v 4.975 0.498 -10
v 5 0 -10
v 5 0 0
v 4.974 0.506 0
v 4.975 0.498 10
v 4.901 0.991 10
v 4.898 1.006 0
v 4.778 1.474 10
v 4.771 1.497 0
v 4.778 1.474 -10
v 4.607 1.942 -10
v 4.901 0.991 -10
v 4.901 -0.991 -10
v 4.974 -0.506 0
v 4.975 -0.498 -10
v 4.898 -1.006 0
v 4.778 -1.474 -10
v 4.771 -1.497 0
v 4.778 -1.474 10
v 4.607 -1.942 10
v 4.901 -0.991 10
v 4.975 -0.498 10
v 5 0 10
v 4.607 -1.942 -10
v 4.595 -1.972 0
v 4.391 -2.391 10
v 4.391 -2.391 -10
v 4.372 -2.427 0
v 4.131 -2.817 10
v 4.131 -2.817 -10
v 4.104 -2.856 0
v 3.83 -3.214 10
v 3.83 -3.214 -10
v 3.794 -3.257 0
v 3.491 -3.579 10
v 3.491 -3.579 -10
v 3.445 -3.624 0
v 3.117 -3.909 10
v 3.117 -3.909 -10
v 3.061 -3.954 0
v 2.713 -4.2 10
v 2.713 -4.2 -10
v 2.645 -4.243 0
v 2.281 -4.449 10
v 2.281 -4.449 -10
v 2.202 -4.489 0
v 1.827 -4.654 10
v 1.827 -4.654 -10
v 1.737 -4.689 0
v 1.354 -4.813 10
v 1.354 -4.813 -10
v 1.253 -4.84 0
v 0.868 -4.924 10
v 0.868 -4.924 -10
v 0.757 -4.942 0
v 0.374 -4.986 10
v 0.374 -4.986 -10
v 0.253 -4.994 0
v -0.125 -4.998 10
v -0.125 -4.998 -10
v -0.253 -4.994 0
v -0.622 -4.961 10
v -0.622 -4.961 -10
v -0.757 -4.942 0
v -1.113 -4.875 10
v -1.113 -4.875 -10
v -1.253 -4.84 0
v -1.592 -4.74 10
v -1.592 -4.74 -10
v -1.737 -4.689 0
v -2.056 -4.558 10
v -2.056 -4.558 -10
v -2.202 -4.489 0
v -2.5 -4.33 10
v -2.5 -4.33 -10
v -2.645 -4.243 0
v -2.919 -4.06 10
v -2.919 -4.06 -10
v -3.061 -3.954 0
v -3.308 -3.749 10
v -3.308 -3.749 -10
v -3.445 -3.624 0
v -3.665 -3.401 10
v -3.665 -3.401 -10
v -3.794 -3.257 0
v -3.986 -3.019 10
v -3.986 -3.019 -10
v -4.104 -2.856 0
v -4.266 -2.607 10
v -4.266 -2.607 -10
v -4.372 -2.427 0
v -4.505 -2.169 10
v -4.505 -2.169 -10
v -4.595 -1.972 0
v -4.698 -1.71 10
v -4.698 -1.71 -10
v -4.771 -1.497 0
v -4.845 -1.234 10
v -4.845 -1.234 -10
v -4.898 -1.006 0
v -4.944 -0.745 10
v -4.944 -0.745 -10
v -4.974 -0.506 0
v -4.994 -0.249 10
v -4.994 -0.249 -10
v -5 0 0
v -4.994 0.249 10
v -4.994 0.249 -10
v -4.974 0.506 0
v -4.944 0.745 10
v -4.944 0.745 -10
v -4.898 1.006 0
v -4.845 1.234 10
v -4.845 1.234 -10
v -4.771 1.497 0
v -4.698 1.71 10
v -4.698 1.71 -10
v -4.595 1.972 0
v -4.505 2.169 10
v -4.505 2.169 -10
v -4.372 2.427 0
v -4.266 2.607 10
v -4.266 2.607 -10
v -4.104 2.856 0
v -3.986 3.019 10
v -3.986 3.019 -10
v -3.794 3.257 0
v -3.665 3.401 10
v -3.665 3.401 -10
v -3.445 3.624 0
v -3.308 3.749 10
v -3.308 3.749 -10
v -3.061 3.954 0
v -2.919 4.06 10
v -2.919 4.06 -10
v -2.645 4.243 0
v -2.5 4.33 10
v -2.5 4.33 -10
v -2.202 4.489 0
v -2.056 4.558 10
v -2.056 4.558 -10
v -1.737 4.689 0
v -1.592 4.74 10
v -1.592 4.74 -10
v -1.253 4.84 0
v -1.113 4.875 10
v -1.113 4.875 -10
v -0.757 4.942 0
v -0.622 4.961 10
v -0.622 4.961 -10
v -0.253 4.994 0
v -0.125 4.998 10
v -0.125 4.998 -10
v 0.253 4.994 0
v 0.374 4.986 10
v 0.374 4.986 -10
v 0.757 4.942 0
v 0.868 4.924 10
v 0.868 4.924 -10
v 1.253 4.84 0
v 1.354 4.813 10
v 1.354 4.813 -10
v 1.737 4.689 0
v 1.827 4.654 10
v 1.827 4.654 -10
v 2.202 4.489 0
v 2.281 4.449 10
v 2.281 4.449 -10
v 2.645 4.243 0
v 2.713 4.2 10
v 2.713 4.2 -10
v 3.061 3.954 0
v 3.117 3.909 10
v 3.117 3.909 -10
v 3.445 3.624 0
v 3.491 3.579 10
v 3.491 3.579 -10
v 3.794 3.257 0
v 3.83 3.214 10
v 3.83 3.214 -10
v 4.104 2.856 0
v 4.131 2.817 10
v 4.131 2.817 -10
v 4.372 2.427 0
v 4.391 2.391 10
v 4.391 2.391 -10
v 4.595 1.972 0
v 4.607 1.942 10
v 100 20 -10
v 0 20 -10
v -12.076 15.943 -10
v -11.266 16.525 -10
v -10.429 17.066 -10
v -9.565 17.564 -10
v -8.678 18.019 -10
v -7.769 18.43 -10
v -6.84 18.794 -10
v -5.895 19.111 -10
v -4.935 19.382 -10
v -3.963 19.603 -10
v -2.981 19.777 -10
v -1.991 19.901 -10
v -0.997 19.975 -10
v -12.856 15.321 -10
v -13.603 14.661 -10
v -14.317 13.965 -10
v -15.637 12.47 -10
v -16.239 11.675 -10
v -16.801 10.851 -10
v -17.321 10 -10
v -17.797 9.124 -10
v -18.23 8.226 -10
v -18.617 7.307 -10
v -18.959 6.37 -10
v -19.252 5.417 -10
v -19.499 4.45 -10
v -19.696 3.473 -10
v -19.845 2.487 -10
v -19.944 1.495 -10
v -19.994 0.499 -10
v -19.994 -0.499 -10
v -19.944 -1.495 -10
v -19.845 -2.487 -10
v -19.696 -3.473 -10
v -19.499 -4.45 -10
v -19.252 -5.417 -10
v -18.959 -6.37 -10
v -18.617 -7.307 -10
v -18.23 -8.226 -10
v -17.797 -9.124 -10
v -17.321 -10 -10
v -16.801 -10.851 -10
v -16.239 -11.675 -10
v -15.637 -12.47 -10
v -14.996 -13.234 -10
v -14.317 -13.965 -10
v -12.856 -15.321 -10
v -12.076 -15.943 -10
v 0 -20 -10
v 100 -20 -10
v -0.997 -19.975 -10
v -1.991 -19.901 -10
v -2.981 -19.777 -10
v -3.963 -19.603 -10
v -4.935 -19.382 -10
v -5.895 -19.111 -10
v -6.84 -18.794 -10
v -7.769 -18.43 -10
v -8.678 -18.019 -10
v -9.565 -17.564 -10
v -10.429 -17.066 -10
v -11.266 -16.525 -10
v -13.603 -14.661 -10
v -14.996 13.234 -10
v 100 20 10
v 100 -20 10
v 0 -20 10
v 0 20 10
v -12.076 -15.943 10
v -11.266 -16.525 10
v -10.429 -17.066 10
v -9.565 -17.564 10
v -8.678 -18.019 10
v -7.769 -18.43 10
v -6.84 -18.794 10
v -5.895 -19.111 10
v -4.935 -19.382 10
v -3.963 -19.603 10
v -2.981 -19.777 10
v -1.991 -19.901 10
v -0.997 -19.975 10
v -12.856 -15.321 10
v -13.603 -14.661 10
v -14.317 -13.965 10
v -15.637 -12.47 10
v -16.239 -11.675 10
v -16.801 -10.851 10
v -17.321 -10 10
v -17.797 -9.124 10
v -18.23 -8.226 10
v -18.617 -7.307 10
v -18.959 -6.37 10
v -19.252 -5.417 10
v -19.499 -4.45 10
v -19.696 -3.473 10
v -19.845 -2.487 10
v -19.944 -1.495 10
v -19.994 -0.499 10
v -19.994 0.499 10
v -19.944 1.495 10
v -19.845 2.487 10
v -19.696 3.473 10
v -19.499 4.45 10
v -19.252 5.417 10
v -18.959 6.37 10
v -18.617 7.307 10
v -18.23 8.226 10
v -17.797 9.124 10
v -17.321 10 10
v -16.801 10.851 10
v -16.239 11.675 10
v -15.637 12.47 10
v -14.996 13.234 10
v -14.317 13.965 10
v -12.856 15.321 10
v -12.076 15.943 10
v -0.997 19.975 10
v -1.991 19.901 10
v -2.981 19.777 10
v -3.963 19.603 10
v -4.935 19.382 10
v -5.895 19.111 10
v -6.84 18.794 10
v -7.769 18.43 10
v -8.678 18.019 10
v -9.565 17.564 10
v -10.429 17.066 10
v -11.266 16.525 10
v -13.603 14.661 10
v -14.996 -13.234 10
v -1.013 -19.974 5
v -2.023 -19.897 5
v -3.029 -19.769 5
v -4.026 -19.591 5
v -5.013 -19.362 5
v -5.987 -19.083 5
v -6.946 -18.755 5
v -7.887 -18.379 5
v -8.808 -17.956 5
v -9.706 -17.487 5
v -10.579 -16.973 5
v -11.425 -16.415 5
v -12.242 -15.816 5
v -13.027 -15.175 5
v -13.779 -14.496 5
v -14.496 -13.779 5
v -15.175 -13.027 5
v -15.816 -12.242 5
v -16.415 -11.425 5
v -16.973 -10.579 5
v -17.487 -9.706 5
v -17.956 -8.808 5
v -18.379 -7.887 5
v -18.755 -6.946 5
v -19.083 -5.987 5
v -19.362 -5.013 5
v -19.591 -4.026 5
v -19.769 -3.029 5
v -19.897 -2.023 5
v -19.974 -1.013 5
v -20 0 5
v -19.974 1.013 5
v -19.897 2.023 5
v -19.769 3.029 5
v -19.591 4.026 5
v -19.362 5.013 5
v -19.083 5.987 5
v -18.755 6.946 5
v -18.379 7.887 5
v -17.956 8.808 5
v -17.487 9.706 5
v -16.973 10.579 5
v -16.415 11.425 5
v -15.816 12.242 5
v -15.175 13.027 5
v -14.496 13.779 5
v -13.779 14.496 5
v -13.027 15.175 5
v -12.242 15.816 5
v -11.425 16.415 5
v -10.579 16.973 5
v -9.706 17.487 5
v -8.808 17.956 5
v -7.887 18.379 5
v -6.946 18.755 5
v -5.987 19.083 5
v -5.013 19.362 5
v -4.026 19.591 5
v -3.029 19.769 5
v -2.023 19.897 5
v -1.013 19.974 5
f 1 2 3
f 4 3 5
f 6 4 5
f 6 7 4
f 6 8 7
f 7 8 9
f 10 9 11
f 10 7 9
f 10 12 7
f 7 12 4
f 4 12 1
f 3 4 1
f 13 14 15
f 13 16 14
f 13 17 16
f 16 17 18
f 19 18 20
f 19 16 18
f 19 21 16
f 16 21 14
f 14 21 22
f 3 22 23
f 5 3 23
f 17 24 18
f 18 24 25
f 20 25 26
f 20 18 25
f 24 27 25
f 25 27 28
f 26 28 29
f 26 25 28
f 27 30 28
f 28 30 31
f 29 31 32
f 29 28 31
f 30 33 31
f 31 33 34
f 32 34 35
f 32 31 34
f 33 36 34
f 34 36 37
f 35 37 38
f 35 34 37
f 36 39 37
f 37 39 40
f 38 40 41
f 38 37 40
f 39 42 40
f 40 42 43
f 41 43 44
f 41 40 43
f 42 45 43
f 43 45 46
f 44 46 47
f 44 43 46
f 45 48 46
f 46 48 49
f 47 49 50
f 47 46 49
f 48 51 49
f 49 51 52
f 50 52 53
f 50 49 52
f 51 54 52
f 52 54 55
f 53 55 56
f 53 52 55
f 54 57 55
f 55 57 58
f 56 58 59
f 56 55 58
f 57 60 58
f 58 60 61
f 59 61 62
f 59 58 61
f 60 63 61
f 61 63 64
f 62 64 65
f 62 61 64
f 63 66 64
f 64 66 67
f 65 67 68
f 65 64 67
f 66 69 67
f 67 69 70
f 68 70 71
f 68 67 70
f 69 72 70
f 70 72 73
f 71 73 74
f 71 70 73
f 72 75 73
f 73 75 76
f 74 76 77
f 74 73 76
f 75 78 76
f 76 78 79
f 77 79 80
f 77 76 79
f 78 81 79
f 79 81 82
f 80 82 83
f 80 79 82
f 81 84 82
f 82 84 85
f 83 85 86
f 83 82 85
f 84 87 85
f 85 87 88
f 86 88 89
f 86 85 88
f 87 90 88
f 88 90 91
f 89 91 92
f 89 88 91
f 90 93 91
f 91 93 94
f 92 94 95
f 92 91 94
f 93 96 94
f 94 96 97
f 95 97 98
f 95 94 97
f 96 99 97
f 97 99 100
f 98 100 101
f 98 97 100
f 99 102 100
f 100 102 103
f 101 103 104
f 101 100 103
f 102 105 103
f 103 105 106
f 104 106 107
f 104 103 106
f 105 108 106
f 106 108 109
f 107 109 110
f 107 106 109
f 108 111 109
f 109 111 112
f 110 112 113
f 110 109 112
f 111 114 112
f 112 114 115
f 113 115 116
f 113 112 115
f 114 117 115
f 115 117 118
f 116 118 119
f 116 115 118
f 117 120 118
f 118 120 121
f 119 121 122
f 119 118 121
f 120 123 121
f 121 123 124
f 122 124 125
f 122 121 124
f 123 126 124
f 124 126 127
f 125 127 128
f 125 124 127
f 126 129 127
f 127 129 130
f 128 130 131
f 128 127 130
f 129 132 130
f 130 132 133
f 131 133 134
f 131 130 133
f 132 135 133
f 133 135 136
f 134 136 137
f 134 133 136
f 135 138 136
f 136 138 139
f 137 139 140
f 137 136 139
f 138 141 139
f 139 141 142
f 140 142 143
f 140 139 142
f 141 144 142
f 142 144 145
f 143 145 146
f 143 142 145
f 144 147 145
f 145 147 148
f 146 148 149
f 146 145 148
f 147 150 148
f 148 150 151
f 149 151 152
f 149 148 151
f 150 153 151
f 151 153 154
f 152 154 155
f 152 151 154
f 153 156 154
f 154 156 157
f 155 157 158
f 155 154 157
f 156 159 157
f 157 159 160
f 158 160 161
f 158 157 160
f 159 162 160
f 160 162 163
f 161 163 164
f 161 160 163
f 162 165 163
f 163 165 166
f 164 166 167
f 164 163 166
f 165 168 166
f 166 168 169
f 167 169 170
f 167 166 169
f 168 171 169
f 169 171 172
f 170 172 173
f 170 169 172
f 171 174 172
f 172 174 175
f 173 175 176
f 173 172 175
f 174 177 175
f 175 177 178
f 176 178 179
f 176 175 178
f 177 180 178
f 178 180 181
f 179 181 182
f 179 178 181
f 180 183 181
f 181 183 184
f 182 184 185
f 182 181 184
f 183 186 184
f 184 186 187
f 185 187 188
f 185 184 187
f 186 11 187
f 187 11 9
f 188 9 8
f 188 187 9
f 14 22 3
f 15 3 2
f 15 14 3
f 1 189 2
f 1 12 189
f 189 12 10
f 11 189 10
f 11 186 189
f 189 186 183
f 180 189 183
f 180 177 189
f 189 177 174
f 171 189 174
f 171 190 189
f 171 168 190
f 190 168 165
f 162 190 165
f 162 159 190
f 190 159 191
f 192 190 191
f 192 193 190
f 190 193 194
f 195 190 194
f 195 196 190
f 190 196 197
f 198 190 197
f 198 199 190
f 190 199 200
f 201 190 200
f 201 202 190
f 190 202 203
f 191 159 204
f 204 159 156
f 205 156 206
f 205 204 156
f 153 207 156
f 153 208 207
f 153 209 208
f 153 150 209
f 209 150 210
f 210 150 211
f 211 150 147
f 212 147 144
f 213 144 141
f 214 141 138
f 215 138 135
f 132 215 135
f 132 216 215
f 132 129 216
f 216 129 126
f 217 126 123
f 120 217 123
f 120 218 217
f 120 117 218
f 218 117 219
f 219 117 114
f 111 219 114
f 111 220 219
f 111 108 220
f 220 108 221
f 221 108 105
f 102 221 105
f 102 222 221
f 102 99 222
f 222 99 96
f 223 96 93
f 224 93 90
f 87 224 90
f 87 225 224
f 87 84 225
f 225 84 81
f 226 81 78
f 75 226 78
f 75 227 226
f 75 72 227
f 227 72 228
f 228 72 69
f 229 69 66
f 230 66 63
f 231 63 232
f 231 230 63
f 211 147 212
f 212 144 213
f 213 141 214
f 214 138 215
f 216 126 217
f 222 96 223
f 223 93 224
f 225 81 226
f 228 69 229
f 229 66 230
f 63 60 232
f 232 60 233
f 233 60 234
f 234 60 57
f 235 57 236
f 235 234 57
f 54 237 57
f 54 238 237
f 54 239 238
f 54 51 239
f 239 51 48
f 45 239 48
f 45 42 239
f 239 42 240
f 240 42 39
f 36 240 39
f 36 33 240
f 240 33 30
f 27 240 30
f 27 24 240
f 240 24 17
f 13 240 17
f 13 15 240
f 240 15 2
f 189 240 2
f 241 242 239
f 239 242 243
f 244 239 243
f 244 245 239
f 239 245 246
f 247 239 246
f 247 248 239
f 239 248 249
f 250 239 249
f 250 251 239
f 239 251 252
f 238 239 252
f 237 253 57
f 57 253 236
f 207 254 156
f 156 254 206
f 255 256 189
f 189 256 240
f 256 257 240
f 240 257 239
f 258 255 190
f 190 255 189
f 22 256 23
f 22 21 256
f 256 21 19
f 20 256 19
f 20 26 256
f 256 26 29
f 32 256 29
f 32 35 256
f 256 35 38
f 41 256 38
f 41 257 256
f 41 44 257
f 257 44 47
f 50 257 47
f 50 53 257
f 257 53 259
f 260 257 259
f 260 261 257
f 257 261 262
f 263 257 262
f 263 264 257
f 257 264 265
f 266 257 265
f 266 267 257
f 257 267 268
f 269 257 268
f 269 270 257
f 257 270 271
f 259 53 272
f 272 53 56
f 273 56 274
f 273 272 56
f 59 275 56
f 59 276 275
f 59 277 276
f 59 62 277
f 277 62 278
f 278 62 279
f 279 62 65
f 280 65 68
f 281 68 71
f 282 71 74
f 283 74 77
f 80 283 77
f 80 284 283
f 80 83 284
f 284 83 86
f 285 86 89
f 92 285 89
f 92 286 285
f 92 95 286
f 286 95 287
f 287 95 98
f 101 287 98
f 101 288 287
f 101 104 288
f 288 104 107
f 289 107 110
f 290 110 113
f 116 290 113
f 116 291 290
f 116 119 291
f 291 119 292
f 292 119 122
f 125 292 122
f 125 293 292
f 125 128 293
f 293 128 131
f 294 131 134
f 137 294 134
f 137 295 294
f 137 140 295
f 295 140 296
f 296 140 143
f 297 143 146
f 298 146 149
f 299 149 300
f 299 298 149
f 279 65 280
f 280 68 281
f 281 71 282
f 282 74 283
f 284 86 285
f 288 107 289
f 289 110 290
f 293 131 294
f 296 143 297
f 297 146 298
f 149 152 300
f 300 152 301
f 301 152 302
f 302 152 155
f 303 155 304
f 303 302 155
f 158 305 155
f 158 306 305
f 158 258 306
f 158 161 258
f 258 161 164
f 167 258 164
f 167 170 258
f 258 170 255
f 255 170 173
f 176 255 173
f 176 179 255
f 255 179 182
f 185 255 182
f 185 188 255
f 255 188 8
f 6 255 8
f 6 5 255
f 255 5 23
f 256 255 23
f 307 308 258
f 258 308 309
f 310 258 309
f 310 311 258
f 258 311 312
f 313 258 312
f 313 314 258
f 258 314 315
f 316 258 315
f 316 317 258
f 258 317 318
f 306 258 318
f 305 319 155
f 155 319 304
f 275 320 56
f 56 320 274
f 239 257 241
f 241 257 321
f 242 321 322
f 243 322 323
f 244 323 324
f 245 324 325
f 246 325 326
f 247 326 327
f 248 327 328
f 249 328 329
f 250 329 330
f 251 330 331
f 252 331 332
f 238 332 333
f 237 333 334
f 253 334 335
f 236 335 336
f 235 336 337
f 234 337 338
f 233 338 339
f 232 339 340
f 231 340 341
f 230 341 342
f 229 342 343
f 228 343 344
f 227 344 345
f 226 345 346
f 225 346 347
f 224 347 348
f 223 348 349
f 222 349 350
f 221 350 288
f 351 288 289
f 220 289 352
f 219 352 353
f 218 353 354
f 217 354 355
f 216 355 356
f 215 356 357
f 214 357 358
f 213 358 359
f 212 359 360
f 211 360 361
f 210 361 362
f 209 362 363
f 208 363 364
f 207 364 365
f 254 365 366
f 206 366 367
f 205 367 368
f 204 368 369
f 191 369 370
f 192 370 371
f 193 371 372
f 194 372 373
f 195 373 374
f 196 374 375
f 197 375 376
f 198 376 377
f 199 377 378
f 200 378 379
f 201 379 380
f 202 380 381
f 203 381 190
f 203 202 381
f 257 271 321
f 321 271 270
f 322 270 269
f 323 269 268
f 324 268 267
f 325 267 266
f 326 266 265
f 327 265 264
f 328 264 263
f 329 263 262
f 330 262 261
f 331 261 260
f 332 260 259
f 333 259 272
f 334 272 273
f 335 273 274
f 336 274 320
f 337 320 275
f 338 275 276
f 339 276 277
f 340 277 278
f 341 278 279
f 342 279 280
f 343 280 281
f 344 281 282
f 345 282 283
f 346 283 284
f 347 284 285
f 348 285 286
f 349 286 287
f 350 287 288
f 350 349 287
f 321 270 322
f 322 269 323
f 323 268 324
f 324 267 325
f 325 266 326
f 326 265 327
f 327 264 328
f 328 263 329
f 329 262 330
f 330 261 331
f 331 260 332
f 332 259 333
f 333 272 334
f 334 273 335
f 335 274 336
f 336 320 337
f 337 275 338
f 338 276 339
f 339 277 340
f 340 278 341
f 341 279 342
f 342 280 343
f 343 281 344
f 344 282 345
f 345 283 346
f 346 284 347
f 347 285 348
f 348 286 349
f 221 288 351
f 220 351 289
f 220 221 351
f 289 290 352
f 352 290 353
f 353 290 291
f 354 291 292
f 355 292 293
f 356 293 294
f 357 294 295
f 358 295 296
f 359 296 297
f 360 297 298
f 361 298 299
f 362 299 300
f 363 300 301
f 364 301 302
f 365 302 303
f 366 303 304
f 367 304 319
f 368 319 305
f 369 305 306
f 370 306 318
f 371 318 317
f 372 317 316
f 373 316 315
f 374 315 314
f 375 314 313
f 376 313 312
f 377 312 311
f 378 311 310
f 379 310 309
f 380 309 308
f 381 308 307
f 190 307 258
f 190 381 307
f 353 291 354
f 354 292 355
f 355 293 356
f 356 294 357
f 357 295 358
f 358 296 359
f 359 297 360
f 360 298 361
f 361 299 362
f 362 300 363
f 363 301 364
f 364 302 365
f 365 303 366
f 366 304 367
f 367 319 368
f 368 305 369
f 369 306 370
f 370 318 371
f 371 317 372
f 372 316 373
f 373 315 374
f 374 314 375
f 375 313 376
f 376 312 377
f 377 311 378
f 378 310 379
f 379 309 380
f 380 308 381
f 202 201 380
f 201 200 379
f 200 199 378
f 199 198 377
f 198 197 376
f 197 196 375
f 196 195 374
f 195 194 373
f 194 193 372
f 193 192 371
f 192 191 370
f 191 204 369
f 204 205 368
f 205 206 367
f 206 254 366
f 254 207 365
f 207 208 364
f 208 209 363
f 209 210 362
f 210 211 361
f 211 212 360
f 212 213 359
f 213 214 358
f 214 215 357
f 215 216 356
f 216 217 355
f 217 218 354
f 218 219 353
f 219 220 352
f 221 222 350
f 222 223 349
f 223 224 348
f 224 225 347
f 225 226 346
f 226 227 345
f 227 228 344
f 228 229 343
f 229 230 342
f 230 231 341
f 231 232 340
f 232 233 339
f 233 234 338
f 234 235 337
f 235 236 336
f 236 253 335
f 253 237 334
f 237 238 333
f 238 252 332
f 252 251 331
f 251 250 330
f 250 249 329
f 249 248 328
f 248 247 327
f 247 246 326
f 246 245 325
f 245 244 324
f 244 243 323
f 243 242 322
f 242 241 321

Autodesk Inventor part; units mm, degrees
ref_plane "YZ Plane" through (0, 0, 0) normal (1, 0, 0) x (0, 1, 0)
ref_plane "XZ Plane" through (0, 0, 0) normal (0, 1, 0) x (-1, 0, 0)
ref_plane "XY Plane" through (0, 0, 0) normal (0, 0, 1) x (1, 0, 0)
sketch "スケッチ1" plane through (0, 0, 0) normal (0, 0, 1) x (1, 0, 0)
  line L0 (0, 20) -> (100, 20)
  line L1 (100, 20) -> (100, -20)
  line L2 (100, -20) -> (0, -20)
  line L3 (0, -20) -> (0, 20)
  circle A0 centre (0, 0) radius 20
  dimension "d0" = 100
  dimension "d1" = 40
  dimension "d2" = 20
  dimension "d3" = 100
extrude "押し出し1" add sketch "スケッチ1" along normal mid plane 20
sketch "スケッチ2" plane through (0, 0, 10) normal (0, 0, 1) x (1, 0, 0)
  circle A0 centre (0, 0) radius 5
  dimension "d6" = 10
extrude "押し出し2" cut sketch "スケッチ2" against normal through all
equation "\"d2\" = 0.5 * d1"
equation "\"d3\" = d0"
equation "\"d7\" = d6"
properties part number "Base" material "ゴールド"
